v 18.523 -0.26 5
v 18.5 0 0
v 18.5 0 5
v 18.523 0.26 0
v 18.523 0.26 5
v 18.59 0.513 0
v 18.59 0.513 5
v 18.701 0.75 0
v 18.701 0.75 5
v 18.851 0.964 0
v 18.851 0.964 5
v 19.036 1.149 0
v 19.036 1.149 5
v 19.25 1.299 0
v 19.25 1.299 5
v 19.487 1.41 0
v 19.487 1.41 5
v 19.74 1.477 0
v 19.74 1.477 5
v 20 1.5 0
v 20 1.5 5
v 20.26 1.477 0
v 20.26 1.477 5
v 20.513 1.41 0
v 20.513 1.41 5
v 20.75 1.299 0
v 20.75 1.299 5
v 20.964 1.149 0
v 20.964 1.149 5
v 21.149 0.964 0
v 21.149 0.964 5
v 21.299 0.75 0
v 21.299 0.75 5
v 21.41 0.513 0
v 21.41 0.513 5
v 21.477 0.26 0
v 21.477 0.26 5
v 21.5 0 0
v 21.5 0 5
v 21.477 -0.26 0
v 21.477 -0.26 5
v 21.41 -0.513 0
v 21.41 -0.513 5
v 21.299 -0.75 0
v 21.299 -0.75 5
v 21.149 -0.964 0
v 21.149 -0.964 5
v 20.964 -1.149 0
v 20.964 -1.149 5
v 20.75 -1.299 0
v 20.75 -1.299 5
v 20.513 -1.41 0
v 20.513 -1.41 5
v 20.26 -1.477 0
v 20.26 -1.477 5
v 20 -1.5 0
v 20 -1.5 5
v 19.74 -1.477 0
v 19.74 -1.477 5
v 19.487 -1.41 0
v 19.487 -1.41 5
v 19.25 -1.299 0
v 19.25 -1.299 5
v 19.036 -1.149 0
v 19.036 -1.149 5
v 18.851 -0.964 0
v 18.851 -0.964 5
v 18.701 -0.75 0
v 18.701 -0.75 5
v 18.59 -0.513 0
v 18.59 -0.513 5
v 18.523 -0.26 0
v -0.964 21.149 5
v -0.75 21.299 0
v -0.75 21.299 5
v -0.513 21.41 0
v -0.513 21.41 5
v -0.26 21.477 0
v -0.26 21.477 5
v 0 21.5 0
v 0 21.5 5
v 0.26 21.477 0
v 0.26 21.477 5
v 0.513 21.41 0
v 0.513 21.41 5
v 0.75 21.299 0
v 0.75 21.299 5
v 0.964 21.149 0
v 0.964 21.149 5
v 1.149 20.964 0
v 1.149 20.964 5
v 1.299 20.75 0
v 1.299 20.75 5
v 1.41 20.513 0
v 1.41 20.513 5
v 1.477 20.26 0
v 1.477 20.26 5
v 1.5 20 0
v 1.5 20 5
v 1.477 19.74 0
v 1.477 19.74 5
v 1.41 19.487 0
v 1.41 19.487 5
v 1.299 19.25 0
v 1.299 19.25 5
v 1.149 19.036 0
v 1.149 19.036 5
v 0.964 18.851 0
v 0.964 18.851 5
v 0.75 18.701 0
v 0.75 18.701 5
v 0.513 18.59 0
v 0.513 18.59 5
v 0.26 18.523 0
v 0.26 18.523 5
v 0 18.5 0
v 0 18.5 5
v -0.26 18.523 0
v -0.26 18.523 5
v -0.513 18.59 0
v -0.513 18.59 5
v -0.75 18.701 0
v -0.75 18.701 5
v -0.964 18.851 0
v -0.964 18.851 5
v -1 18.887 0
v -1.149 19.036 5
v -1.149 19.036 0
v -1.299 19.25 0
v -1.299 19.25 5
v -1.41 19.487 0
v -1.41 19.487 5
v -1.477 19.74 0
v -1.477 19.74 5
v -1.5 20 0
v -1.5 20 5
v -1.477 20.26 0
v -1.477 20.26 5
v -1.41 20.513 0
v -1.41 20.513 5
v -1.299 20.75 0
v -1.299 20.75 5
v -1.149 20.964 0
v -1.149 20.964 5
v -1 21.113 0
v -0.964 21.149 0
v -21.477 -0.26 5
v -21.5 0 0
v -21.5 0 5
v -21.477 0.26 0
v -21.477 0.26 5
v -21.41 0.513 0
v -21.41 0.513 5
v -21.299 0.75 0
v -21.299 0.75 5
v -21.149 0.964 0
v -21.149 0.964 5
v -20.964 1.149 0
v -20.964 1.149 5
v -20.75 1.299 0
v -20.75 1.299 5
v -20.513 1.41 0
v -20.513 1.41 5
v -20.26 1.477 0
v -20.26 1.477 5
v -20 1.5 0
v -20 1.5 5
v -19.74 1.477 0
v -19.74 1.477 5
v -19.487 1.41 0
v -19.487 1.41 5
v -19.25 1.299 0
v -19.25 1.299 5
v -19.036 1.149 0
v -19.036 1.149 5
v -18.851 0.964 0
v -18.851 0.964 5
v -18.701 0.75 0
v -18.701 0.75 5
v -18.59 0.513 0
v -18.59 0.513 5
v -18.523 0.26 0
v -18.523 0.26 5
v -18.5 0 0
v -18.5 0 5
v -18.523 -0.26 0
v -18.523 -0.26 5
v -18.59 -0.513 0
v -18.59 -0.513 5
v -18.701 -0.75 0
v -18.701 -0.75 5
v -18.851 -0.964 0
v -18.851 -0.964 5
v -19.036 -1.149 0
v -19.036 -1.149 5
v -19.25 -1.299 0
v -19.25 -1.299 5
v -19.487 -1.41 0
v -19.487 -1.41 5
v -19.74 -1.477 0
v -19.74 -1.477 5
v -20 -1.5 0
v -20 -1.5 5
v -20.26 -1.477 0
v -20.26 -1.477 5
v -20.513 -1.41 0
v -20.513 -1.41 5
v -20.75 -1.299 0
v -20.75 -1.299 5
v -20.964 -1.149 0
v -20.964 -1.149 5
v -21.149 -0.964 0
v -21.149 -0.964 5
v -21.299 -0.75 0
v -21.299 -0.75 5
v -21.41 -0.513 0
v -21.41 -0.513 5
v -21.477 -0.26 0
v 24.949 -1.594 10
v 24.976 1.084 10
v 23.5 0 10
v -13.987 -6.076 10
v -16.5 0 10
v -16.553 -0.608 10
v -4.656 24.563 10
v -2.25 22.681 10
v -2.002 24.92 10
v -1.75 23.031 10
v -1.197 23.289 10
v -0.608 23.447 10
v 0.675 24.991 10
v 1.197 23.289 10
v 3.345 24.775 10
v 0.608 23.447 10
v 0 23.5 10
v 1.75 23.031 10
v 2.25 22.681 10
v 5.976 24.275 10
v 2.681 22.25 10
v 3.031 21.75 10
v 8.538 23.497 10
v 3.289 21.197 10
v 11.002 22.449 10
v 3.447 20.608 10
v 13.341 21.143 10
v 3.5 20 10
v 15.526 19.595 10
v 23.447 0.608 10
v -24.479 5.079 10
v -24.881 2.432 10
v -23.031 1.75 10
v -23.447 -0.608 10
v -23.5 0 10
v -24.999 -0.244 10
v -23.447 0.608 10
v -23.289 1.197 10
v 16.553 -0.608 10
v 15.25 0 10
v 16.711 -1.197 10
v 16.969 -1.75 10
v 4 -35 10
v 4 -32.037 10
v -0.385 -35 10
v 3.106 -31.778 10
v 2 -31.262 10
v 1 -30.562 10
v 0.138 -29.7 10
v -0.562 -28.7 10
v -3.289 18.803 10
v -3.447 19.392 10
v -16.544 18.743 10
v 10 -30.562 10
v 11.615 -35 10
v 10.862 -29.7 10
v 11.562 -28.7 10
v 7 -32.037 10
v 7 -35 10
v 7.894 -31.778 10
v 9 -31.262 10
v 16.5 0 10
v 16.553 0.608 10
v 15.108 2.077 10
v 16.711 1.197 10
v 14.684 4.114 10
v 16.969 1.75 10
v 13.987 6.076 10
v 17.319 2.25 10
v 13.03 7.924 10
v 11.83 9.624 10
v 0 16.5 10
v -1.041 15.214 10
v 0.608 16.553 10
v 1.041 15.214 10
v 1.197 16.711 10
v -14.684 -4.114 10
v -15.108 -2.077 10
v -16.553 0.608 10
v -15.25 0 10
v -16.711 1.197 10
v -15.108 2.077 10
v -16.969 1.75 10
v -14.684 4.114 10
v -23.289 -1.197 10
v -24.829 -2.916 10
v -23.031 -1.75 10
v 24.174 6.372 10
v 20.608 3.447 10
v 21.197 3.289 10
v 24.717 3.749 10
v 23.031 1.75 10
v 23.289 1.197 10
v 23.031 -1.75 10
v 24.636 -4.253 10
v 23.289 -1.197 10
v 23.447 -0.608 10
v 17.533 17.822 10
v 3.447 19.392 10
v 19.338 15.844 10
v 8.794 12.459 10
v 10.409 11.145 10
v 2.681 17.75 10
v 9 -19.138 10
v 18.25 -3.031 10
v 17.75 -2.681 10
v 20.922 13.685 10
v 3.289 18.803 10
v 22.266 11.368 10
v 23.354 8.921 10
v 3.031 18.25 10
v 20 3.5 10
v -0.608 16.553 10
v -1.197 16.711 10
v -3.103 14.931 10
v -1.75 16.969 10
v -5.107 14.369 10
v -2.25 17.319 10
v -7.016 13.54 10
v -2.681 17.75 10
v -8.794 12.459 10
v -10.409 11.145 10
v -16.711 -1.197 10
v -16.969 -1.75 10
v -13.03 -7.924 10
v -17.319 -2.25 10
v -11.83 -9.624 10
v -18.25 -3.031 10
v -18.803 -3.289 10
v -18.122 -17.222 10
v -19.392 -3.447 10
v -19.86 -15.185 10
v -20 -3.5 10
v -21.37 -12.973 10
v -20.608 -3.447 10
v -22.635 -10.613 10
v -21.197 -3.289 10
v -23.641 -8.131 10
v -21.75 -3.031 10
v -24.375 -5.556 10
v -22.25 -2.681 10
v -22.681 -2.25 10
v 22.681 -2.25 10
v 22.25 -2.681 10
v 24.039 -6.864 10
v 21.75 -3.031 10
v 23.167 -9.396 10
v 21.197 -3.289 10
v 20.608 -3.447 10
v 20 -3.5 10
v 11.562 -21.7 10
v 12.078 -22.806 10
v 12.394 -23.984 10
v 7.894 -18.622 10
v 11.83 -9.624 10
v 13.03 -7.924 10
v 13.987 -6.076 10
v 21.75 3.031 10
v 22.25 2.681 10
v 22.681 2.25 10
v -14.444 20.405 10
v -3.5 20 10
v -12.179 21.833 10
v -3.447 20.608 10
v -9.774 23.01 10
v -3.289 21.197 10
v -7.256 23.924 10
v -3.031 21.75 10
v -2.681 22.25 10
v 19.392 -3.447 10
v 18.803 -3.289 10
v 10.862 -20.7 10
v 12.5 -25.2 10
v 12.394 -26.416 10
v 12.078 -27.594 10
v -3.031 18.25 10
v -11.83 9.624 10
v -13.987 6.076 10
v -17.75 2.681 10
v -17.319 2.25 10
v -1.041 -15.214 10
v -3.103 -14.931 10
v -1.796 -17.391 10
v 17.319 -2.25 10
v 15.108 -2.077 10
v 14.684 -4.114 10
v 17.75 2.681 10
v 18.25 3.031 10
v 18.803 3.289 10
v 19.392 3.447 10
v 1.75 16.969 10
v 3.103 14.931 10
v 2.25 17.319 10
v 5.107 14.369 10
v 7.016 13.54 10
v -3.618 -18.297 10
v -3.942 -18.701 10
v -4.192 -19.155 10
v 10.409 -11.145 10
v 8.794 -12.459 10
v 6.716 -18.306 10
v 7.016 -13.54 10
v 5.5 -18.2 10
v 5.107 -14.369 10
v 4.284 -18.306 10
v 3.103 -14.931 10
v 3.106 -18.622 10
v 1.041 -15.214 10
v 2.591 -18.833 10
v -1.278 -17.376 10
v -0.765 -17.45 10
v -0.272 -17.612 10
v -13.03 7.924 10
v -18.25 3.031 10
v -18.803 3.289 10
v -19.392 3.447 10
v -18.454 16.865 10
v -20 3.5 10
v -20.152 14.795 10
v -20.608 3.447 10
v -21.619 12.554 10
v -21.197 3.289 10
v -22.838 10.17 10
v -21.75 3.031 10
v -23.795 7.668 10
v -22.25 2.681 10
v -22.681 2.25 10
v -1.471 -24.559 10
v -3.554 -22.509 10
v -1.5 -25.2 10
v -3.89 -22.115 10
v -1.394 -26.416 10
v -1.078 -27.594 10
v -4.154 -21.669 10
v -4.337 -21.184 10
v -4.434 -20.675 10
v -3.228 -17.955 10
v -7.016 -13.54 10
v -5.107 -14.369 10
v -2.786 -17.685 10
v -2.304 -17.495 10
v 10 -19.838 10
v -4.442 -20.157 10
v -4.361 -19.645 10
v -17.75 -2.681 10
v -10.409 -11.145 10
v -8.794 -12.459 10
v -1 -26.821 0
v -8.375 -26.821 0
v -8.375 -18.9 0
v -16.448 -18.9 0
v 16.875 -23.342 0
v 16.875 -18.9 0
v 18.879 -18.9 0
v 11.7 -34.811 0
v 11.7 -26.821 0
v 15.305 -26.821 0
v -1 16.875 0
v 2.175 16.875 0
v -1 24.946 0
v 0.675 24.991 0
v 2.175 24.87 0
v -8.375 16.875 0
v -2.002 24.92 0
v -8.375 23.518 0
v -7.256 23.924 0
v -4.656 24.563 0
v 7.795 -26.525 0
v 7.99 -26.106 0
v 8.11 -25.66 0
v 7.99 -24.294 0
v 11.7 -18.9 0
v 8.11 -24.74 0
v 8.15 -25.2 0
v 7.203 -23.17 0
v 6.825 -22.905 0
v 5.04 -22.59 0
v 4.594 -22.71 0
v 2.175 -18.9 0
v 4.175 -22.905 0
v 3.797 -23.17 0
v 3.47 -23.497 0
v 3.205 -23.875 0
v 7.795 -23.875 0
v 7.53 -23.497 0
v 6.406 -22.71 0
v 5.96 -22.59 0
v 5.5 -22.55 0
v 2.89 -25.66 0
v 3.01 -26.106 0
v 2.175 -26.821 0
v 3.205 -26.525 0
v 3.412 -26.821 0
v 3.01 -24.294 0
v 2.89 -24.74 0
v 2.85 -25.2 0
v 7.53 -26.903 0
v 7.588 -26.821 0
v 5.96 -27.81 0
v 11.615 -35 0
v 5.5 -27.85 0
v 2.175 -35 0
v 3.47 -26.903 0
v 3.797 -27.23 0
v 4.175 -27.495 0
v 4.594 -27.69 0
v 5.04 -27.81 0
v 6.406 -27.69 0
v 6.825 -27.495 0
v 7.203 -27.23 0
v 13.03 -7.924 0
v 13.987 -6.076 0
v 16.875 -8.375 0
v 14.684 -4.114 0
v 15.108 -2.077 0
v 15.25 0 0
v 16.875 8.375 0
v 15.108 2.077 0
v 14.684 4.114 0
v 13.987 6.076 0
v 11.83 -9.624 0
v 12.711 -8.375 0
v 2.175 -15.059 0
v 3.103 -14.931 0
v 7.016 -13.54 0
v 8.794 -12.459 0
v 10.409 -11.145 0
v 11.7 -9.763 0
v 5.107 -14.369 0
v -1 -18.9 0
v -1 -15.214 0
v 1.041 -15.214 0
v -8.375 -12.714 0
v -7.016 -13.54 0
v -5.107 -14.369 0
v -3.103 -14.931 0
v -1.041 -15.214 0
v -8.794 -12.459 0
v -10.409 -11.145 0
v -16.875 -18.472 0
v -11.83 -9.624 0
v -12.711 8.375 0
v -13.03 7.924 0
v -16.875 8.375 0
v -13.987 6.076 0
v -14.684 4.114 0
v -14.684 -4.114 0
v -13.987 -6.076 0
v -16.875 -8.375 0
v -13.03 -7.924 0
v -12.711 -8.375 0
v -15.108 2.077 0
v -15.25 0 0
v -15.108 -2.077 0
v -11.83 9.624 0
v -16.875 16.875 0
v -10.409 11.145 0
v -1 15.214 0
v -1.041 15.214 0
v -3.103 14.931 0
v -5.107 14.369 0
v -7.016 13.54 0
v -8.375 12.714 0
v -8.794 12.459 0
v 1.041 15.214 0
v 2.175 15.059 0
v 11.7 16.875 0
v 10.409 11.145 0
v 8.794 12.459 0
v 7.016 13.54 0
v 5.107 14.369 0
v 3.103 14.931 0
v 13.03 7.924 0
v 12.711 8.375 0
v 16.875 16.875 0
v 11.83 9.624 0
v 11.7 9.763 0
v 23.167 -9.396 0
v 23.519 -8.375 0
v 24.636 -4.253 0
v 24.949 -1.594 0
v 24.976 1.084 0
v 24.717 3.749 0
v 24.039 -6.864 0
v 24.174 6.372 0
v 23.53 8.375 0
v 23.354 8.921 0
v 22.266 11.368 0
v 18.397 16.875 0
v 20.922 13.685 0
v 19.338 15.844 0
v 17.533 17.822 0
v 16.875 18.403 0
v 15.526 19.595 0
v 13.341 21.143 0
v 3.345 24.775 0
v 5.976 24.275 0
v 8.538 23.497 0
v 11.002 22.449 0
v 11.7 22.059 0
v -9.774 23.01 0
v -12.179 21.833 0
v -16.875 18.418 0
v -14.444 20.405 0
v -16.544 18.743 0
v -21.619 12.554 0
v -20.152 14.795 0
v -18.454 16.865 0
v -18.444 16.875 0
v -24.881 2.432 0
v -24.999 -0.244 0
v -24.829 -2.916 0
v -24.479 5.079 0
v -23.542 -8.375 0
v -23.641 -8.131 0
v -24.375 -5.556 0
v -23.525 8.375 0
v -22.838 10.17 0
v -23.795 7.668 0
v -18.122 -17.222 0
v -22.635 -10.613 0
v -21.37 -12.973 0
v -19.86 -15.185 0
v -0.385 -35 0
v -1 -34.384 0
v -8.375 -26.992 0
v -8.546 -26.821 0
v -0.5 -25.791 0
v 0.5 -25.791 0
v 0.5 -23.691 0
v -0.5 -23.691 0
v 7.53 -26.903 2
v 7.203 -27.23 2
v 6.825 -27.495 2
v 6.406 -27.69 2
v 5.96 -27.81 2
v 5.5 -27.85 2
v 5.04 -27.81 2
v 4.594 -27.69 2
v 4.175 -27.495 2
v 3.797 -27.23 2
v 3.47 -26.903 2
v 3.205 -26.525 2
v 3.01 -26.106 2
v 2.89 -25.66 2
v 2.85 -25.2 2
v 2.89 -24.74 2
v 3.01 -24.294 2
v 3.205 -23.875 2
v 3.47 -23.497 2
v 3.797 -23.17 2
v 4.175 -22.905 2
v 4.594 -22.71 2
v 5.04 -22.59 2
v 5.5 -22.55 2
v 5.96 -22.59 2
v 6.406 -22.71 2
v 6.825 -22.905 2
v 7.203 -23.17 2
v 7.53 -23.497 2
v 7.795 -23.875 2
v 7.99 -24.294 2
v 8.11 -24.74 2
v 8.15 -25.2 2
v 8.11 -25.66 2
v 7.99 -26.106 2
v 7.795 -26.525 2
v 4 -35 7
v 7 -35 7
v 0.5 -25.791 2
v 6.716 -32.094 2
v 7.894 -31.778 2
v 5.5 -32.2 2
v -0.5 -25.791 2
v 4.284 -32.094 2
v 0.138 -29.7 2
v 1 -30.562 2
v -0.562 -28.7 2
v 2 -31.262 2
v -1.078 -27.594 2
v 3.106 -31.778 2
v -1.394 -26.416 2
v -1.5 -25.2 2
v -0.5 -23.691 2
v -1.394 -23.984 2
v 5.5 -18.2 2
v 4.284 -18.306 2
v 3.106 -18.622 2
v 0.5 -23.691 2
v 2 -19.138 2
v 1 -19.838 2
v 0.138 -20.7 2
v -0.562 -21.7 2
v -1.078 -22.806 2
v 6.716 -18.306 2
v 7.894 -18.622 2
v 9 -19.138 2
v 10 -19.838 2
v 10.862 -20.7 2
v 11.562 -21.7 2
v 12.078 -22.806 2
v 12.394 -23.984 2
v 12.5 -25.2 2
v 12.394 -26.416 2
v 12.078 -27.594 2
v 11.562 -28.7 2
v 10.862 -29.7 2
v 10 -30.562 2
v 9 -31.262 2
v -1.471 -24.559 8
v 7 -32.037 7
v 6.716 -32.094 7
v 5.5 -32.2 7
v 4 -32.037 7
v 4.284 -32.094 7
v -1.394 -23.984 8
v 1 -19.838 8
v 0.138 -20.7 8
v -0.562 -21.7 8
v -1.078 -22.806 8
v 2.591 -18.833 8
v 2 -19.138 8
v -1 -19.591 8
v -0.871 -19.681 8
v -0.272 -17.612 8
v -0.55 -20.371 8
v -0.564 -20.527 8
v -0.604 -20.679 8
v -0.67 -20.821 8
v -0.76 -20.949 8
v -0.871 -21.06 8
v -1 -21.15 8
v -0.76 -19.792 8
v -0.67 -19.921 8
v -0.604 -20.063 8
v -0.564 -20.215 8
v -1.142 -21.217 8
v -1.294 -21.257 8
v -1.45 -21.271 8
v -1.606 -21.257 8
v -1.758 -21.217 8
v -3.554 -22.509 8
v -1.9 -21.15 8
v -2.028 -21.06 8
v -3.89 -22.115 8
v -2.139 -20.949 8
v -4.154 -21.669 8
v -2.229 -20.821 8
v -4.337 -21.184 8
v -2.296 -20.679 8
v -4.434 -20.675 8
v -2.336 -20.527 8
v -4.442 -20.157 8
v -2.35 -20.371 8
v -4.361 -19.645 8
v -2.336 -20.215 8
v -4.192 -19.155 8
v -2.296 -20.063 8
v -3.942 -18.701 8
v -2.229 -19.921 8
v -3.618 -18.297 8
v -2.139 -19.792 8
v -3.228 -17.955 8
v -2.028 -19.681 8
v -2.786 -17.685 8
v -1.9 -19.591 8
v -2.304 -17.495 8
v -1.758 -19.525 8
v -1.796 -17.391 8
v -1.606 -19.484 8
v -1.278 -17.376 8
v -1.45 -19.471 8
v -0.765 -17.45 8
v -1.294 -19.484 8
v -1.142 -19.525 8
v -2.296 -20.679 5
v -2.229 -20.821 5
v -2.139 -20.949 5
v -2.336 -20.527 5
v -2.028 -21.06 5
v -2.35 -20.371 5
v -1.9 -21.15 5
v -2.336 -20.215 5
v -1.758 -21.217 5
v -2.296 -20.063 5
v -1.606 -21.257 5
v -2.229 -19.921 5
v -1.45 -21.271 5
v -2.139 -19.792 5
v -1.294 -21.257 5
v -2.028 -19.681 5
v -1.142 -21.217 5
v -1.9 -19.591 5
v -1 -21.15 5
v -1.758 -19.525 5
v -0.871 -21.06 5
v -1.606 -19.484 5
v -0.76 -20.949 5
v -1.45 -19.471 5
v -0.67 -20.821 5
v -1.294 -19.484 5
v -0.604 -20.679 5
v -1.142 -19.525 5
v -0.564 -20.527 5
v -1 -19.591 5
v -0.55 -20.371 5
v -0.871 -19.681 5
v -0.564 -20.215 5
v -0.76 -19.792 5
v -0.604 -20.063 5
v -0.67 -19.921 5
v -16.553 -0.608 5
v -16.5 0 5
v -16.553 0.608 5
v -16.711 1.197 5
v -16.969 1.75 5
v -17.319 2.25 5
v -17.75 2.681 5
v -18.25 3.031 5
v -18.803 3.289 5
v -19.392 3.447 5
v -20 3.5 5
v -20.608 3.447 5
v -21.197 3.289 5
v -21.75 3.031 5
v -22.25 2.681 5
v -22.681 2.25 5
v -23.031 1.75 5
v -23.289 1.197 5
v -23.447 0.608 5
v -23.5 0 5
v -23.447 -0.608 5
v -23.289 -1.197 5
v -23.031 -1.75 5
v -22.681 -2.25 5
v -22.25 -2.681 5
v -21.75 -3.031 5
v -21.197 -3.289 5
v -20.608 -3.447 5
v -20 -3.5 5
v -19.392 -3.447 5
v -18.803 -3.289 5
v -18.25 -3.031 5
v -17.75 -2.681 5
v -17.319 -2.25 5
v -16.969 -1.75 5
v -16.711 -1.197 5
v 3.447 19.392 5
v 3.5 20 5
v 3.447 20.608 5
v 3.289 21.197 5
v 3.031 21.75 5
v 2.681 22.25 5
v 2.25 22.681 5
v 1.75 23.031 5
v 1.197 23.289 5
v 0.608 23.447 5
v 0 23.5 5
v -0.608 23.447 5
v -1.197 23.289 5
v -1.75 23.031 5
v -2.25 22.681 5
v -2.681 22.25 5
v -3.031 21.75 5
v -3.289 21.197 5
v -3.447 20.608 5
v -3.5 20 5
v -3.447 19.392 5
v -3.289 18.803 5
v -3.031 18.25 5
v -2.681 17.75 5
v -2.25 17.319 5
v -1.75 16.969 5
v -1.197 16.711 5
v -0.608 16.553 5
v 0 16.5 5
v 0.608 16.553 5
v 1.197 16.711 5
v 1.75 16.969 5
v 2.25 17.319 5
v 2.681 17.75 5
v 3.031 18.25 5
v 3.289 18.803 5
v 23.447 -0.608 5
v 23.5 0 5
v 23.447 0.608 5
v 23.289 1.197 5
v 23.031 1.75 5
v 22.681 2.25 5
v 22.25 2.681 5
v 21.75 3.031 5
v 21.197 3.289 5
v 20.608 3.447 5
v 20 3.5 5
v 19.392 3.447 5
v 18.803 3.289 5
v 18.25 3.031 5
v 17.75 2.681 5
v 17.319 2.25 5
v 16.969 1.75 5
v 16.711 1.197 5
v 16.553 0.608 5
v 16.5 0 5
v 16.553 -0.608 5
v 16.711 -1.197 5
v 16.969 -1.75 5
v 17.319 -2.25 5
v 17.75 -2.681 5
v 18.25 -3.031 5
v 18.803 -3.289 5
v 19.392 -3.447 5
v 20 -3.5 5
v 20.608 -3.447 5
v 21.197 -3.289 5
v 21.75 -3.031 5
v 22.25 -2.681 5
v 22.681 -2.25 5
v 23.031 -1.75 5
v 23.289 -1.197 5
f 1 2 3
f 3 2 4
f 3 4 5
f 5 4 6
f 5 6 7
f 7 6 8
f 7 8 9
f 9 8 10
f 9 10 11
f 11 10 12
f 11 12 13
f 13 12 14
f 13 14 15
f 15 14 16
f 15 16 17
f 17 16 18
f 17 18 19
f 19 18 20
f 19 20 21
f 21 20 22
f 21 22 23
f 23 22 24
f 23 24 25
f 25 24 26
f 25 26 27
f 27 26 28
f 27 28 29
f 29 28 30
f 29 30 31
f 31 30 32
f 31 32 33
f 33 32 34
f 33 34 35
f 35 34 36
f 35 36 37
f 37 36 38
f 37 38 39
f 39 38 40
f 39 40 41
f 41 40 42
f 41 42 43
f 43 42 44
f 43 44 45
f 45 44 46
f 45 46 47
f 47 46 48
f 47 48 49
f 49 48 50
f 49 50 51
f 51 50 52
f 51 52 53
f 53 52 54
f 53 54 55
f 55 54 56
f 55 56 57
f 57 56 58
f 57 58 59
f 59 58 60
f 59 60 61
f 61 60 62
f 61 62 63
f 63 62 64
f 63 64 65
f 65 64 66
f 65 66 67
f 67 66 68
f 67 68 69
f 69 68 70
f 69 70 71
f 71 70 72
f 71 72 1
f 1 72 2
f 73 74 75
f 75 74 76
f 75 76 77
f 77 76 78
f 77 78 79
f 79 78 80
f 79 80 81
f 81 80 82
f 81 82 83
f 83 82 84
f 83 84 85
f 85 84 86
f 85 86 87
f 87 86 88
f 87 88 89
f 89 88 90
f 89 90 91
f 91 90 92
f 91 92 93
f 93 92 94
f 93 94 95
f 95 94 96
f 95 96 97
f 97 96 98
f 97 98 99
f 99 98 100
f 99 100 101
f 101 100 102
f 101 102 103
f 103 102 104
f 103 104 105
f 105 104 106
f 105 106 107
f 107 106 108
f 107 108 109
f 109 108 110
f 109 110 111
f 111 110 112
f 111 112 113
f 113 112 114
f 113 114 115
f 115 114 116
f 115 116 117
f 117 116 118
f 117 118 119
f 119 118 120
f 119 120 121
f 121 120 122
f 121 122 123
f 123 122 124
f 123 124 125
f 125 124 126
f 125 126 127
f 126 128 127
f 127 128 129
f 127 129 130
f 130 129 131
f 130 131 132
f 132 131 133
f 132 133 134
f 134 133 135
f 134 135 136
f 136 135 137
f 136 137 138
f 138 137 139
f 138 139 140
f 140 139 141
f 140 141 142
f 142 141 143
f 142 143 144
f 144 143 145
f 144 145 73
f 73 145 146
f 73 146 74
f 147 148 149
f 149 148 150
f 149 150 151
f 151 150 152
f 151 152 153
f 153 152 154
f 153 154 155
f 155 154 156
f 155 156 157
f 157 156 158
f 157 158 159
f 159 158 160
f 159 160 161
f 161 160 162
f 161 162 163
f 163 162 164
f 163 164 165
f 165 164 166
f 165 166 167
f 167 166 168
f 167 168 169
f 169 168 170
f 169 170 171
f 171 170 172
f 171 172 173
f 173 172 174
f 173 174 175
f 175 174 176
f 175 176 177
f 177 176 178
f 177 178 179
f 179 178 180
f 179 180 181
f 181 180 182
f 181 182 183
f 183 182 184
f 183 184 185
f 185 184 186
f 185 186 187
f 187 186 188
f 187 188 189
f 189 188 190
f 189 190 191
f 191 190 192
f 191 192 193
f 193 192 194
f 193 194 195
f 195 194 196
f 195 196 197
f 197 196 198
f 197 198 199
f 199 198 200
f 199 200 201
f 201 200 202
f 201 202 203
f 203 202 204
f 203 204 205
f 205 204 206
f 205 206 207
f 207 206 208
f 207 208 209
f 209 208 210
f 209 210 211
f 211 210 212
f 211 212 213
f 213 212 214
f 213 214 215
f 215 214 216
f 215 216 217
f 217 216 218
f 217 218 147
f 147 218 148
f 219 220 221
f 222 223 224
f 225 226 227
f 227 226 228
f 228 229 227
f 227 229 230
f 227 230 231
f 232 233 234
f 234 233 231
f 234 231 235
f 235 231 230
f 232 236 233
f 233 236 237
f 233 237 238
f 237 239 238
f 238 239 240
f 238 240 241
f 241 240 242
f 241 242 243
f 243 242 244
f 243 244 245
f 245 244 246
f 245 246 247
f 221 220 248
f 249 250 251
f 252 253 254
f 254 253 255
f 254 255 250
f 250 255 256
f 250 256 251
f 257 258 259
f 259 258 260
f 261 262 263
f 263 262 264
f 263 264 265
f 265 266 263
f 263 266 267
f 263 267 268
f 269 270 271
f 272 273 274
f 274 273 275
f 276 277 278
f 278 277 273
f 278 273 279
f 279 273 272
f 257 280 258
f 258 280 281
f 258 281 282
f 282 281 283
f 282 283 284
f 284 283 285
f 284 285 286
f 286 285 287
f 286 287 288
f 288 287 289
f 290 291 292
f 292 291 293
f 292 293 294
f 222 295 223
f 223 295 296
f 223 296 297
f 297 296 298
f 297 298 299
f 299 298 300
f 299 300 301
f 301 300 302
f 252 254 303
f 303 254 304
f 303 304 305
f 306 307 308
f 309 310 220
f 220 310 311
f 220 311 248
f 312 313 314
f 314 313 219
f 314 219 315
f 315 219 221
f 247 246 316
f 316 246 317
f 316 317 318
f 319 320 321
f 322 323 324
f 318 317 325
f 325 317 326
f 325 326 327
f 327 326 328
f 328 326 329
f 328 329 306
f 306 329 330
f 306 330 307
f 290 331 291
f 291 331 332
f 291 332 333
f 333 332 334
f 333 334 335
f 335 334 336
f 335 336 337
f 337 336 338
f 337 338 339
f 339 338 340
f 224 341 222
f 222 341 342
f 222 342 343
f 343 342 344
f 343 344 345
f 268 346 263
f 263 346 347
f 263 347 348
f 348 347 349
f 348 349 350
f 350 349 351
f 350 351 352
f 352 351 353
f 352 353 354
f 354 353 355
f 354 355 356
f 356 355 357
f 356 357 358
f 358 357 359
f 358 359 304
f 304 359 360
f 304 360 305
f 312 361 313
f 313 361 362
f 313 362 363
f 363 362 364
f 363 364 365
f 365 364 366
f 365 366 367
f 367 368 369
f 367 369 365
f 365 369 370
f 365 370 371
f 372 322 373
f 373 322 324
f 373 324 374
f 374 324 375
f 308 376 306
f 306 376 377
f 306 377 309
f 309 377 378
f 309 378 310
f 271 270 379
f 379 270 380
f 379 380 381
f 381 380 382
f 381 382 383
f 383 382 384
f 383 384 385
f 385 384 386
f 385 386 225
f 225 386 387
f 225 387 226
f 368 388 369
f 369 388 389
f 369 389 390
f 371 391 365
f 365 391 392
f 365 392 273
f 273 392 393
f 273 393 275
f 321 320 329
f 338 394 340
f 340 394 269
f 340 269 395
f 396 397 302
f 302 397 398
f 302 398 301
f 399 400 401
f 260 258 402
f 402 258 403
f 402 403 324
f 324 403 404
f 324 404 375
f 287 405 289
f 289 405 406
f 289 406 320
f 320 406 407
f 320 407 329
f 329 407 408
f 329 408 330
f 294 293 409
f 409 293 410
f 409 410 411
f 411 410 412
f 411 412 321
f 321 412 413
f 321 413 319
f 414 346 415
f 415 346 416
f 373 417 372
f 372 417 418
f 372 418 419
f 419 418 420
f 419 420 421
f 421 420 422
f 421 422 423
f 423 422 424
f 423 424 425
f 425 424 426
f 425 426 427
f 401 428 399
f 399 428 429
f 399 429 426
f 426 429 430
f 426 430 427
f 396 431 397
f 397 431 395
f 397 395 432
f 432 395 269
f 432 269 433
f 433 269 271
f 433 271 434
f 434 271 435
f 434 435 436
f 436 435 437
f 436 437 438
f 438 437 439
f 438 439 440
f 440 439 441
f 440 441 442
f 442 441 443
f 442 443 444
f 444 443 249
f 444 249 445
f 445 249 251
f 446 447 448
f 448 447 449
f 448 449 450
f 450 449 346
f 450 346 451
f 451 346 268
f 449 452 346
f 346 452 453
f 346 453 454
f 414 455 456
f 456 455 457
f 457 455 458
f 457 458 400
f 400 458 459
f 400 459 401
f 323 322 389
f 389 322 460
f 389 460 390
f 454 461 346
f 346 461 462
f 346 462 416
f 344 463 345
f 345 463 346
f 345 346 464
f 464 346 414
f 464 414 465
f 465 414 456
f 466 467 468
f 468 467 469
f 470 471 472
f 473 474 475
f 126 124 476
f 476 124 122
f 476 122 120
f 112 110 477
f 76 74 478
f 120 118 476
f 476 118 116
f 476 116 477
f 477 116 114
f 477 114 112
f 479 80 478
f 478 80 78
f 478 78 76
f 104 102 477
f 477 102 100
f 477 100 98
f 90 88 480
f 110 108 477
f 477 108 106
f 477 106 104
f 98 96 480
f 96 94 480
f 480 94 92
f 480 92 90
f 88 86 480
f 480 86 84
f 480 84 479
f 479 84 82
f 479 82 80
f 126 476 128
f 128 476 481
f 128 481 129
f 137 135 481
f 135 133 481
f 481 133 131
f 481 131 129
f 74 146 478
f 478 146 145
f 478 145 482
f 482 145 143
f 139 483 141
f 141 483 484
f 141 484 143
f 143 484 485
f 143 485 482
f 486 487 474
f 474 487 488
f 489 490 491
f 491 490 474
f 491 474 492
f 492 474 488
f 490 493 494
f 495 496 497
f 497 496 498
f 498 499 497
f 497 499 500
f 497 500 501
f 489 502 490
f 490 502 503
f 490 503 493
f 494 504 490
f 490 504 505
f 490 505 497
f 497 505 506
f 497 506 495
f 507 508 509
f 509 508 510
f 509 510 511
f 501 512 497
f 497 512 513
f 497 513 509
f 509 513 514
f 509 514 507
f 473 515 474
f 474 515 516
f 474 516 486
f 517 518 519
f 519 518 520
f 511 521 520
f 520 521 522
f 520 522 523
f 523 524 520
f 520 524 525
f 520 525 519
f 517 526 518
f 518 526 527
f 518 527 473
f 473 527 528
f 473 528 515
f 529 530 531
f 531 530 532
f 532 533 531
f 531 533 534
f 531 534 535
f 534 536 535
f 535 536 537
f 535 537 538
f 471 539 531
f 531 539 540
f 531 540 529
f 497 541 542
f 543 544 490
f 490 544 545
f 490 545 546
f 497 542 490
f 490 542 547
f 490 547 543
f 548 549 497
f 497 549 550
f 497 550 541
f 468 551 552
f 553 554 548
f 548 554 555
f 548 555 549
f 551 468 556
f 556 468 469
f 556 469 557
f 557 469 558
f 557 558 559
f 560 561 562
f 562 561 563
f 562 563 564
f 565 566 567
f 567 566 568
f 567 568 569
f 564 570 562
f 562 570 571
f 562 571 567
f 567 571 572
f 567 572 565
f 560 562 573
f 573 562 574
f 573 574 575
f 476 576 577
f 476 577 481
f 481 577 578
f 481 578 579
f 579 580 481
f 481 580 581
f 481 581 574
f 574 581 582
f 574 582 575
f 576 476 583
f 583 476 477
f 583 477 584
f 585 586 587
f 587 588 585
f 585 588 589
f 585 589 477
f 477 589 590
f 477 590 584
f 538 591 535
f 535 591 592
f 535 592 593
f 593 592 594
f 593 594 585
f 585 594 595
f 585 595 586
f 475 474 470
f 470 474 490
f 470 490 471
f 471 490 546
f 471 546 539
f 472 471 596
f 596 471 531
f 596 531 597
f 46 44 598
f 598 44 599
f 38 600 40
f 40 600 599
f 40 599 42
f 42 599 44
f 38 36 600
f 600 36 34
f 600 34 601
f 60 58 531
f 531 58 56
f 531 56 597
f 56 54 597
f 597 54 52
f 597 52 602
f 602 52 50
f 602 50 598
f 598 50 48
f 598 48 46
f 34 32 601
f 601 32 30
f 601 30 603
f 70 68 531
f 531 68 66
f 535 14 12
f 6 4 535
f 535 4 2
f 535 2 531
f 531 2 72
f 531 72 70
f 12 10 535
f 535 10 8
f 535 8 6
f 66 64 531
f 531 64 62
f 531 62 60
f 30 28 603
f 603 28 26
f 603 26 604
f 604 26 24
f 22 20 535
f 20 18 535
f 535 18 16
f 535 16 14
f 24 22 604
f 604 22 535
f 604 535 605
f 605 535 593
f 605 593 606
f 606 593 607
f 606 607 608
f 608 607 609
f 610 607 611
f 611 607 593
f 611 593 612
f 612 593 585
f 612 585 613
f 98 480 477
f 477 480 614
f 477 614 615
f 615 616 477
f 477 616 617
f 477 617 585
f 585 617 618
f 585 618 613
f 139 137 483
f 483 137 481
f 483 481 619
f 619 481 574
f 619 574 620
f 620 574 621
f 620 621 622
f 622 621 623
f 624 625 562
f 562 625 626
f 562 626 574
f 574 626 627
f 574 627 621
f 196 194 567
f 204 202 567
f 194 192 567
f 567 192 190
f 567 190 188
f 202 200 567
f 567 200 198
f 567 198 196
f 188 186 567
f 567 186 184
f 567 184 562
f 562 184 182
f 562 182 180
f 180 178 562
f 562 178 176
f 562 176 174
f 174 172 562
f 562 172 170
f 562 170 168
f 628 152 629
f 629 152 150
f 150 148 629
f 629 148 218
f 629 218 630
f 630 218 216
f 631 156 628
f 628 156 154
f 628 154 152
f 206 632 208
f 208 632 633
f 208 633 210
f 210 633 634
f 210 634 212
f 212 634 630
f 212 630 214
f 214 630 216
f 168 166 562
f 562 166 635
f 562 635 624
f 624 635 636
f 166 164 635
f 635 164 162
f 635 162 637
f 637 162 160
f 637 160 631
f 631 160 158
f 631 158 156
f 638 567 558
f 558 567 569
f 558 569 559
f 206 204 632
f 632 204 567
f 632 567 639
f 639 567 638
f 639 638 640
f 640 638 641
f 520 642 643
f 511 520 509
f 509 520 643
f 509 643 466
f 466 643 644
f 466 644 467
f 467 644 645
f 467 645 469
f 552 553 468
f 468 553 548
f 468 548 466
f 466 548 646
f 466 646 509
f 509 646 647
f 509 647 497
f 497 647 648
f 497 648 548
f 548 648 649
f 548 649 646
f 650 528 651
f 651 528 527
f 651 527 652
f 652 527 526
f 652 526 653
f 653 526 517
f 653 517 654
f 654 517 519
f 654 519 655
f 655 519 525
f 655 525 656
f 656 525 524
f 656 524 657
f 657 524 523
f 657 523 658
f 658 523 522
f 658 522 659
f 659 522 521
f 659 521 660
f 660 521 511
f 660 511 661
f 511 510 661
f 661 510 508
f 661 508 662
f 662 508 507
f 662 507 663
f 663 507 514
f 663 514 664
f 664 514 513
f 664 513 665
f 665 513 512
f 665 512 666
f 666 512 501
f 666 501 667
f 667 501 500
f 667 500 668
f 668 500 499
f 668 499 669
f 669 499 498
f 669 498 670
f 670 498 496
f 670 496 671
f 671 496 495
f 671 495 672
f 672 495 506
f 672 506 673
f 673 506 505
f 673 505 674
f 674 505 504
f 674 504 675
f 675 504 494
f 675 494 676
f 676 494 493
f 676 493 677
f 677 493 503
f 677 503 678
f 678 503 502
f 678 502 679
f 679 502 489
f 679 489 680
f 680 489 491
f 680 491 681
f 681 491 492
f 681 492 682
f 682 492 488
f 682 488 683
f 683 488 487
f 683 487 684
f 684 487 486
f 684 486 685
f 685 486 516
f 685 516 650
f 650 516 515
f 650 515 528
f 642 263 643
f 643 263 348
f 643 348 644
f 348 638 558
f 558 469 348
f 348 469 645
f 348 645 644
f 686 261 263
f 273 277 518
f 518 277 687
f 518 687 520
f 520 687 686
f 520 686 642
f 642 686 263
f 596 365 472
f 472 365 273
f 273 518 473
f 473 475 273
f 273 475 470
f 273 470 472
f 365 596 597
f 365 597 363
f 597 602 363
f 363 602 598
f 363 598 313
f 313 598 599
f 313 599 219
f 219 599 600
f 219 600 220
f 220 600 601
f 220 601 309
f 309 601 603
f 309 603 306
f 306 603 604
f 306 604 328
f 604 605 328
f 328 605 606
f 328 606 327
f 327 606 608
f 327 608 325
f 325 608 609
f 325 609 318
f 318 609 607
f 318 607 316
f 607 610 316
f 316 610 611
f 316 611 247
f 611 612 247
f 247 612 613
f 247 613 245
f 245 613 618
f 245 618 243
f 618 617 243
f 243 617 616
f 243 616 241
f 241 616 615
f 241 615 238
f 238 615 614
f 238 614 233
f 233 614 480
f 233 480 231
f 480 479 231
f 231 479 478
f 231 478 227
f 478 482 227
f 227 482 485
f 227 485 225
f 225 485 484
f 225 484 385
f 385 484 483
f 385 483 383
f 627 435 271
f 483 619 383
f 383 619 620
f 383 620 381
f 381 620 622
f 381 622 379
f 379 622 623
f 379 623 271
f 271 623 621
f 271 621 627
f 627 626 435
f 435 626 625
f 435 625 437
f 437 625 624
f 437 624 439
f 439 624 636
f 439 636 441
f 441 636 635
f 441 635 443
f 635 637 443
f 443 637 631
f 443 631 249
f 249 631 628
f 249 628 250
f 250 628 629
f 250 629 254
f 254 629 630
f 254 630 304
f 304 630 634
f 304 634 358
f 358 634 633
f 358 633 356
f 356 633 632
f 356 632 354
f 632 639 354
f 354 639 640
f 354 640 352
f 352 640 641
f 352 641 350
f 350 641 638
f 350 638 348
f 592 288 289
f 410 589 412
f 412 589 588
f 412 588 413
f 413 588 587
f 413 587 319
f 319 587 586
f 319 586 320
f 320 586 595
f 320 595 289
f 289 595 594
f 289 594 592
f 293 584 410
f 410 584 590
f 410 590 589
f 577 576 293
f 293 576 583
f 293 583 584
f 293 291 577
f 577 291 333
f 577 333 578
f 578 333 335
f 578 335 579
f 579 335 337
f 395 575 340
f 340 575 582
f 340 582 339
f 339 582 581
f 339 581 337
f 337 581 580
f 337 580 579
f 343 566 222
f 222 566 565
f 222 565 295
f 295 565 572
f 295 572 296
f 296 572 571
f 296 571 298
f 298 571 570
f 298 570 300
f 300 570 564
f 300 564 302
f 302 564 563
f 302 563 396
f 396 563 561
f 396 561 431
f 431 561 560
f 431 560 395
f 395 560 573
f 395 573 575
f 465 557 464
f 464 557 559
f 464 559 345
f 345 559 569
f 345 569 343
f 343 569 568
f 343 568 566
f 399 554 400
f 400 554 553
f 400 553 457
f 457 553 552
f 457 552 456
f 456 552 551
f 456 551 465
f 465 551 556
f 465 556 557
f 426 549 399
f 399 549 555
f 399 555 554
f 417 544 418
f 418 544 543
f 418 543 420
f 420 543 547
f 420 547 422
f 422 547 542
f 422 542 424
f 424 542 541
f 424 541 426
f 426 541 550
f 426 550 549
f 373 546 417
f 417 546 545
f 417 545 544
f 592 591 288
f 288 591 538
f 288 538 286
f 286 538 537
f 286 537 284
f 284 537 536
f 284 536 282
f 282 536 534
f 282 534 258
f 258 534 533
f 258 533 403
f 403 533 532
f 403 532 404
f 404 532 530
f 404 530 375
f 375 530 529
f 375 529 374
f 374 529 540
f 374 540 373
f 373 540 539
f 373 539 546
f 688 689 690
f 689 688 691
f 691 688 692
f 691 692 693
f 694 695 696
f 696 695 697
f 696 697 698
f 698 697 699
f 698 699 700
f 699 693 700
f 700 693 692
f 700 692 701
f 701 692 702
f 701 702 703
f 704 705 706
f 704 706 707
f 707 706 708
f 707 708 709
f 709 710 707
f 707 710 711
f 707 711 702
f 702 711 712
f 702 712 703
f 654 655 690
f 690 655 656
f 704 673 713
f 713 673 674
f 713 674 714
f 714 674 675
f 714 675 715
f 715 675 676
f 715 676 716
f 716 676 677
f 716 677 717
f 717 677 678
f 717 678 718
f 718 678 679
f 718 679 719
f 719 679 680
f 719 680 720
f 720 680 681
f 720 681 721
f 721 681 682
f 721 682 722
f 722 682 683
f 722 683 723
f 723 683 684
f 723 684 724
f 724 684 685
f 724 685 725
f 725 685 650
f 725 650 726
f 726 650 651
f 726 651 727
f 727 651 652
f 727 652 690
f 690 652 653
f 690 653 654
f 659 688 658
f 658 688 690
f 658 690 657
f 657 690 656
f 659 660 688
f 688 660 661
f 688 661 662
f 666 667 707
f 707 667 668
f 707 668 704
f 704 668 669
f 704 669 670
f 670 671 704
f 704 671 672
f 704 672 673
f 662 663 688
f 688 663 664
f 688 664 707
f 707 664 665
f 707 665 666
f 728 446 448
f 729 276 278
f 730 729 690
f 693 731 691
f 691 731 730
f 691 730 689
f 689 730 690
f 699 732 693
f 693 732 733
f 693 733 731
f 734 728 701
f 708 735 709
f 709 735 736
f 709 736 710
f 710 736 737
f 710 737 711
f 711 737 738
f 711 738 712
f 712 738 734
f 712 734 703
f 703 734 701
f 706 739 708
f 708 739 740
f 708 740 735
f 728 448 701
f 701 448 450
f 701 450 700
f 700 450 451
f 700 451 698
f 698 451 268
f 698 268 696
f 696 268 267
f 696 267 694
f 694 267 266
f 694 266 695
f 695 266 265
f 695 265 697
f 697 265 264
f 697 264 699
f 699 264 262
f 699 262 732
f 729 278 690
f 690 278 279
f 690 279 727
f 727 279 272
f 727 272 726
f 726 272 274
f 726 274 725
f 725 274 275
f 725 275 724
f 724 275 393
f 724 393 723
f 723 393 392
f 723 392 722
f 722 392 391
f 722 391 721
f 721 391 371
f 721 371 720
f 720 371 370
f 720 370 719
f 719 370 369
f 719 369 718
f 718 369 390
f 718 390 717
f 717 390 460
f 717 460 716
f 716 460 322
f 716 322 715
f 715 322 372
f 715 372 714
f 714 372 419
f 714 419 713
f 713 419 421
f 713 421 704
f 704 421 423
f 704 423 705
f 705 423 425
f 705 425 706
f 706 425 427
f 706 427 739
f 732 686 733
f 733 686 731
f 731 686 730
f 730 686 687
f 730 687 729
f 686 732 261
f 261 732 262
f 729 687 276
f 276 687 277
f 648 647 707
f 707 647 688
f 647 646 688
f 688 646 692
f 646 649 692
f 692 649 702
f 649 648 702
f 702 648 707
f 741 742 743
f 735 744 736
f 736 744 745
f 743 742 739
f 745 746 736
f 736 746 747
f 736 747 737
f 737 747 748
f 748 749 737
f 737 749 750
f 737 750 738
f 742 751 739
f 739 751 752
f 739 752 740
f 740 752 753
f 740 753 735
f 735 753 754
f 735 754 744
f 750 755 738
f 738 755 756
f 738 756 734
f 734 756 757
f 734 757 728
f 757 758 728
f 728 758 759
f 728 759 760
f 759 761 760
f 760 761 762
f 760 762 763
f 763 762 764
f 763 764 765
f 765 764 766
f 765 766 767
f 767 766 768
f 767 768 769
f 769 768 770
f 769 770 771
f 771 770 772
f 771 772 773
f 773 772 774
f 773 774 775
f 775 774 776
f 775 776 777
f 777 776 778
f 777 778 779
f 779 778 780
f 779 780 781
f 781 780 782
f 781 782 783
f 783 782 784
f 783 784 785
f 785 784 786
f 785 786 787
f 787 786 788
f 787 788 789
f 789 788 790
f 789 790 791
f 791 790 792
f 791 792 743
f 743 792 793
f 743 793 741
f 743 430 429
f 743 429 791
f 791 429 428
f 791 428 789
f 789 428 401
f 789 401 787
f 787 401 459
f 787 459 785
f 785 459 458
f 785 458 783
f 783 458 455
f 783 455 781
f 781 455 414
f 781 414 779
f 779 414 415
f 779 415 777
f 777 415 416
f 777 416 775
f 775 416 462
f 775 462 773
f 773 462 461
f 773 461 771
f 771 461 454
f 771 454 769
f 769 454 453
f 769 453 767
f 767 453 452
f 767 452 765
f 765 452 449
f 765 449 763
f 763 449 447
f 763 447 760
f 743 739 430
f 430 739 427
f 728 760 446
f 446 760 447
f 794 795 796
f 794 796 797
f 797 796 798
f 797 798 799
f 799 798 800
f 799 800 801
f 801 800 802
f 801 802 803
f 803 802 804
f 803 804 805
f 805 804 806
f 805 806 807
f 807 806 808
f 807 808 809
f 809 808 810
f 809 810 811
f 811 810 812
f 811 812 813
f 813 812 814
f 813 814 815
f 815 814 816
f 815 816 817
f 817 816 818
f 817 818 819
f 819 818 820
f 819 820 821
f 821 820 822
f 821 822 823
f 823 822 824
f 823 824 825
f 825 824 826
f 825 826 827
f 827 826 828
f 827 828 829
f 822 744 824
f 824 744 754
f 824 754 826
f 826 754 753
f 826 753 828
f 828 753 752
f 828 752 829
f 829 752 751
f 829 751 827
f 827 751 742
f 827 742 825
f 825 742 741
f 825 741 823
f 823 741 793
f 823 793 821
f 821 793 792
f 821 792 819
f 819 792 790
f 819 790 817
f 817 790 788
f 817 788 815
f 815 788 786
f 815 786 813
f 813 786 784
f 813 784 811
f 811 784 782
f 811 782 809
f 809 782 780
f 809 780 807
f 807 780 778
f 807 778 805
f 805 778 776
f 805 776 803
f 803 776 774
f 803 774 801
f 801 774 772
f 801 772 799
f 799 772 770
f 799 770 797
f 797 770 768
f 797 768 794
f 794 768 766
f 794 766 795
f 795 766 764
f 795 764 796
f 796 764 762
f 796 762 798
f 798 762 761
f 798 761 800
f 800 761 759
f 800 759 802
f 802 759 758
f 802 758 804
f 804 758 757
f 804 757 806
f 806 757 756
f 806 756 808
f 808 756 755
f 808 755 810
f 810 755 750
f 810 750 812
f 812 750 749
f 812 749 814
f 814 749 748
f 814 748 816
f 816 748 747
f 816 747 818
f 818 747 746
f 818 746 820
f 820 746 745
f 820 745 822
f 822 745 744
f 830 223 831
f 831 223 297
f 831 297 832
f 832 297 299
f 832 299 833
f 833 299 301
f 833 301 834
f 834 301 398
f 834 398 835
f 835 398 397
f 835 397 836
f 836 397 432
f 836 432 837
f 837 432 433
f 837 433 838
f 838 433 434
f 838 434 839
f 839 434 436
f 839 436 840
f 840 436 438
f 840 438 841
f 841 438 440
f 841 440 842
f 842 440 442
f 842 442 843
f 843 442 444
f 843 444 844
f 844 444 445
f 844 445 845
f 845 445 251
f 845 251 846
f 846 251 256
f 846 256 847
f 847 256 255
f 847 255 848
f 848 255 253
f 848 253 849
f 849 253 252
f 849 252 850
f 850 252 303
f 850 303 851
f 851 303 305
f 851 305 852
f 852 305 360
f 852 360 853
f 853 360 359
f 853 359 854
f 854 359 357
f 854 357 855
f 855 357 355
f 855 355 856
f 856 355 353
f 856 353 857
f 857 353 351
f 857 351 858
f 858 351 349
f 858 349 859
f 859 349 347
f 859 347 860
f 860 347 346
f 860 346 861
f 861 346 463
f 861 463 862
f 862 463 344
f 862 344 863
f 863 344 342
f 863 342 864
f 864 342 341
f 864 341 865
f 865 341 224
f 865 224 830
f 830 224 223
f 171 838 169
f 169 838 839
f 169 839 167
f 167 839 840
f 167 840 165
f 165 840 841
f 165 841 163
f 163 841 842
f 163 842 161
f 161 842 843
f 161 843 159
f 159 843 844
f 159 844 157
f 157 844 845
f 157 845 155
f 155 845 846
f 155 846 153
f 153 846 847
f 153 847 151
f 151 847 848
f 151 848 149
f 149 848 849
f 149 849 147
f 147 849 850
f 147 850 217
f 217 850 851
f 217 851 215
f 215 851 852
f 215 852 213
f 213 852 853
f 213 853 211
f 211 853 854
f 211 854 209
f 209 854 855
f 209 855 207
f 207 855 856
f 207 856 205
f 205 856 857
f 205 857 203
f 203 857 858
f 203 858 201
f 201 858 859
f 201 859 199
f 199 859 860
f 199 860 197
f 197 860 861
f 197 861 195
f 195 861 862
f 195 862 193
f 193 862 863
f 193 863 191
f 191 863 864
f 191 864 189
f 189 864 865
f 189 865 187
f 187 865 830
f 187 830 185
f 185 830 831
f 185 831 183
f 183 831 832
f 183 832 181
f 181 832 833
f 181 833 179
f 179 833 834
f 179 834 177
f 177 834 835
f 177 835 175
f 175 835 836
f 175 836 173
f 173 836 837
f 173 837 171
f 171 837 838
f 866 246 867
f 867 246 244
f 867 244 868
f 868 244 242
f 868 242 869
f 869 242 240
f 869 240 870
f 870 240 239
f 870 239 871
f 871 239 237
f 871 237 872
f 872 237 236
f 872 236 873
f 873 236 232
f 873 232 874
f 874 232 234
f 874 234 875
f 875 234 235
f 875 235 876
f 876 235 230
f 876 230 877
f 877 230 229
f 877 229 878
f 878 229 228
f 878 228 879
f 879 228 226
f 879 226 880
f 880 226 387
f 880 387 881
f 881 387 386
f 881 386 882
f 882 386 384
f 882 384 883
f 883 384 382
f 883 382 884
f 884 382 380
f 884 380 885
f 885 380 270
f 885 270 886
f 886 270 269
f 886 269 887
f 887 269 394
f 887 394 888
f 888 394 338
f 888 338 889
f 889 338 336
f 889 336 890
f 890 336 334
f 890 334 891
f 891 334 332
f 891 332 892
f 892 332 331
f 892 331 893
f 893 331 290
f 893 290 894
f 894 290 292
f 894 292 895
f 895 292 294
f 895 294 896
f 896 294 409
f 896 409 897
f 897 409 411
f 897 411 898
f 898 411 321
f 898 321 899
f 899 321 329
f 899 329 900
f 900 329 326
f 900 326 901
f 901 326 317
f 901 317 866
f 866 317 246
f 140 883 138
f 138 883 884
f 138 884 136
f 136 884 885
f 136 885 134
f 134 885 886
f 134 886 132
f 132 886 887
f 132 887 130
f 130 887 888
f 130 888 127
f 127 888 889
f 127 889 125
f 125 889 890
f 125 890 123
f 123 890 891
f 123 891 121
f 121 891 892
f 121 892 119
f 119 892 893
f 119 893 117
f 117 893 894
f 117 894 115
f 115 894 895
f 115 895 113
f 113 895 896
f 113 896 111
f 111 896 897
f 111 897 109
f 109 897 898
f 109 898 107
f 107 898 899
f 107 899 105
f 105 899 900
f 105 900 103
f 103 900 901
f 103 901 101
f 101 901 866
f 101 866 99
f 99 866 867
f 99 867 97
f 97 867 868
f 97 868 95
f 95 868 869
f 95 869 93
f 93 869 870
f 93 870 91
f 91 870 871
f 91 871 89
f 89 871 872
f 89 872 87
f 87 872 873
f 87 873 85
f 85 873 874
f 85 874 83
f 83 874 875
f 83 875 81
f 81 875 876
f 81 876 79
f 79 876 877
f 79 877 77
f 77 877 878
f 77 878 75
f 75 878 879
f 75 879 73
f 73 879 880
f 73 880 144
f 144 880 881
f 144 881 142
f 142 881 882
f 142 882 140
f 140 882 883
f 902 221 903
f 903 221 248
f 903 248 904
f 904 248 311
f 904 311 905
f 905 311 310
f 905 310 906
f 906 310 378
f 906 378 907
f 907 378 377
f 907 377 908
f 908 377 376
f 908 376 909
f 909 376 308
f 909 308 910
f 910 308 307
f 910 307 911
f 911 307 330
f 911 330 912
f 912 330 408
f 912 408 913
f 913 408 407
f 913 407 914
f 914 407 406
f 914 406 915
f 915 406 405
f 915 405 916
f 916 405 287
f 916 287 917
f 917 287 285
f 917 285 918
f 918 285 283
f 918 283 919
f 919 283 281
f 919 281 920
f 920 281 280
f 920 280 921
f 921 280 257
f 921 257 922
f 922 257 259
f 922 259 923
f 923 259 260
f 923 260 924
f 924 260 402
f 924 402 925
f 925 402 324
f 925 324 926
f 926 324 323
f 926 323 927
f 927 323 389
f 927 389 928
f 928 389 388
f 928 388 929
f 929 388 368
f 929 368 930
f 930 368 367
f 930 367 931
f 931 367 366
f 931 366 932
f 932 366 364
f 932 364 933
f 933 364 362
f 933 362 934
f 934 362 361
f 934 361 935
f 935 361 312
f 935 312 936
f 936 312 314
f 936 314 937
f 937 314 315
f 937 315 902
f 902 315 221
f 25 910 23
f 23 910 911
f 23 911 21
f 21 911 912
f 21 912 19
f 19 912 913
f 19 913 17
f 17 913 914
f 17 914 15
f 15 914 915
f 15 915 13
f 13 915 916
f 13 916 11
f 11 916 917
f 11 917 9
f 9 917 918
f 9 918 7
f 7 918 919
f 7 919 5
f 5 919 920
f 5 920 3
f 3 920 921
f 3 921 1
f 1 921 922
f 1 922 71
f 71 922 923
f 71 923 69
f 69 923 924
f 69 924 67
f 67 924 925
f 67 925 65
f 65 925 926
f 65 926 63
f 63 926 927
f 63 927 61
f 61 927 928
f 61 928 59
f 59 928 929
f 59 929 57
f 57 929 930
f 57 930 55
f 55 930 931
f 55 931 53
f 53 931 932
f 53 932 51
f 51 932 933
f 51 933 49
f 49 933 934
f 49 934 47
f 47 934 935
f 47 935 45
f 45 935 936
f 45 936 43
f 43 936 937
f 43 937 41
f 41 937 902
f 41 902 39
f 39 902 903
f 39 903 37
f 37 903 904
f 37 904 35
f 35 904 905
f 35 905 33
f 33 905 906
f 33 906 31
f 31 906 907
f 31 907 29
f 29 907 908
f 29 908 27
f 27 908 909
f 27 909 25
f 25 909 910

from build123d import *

# Parameters (mm, degrees)
EXTRUDE1_DEPTH                 = 10
SKETCH2_R                      = 15.25
EXTRUDE2_DEPTH                 = 11
F_5_3_5_3_DIAMETER_HOLE1_D     = 5.3
F_5_3_5_3_DIAMETER_HOLE1_DEPTH = 15
SKETCH4_R                      = 7
EXTRUDE3_DEPTH                 = 8
SKETCH5_W                      = 3
SKETCH5_H                      = 2.962602834
EXTRUDE4_DEPTH                 = 3
SKETCH6_W                      = 1
SKETCH6_H                      = 2.1
EXTRUDE5_DEPTH                 = 3
SKETCH7_R                      = 0.9
EXTRUDE6_DEPTH                 = 5
EXTRUDE7_DEPTH                 = 2
SKETCH9_R                      = 1.5
EXTRUDE9_DEPTH                 = 11
SKETCH10_R                     = 3.5
EXTRUDE10_DEPTH                = 5


with BuildPart() as part:
    # Sketch1 → Extrude1 (new body)
    with BuildSketch(Plane.XY):
        with BuildLine():
            Line((-0.385076955, -35), (11.614923045, -35))
            Line((11.614923045, -35), (23.167030313, -9.396207025))
            ThreePointArc((23.167030313, -9.396207025), (-4.655667218, 24.562670106), (-18.121718507, -17.222175192))
            Line((-18.121718507, -17.222175192), (-0.385076955, -35))
        make_face()
    extrude(amount=EXTRUDE1_DEPTH)

    # Sketch2 → Extrude2 (cut, through all)
    with BuildSketch(Plane.XY.offset(10)):
        Circle(SKETCH2_R)
    extrude(amount=-EXTRUDE2_DEPTH, mode=Mode.SUBTRACT)

    # Ø5.3 (5.3) Diameter Hole1
    with Locations(Plane(origin=(5.5, -25.2, 10), x_dir=(1, 0, 0), z_dir=(0, 0, 1))):
        with Locations((0, 0)):
            Hole(F_5_3_5_3_DIAMETER_HOLE1_D / 2, depth=F_5_3_5_3_DIAMETER_HOLE1_DEPTH)

    # Sketch4 → Extrude3 (cut)
    with BuildSketch(Plane.XY.offset(10)):
        with Locations((5.5, -25.2)):
            Circle(SKETCH4_R)
    extrude(amount=-EXTRUDE3_DEPTH, mode=Mode.SUBTRACT)

    # Sketch5 → Extrude4 (cut)
    with BuildSketch(Plane.XY.offset(10)):
        with Locations((5.5, -33.518698583)):
            Rectangle(SKETCH5_W, SKETCH5_H)
    extrude(amount=-EXTRUDE4_DEPTH, mode=Mode.SUBTRACT)

    # Sketch6 → Extrude5 (cut, through all)
    with BuildSketch(Plane.XY.offset(2)):
        with Locations((0, -24.741008814)):
            Rectangle(SKETCH6_W, SKETCH6_H)
    extrude(amount=-EXTRUDE5_DEPTH, mode=Mode.SUBTRACT)

    # Sketch7 → Extrude6 (cut)
    with BuildSketch(Plane.XY.offset(10)):
        with Locations((-1.44988107, -20.370788479)):
            Circle(SKETCH7_R)
    extrude(amount=-EXTRUDE6_DEPTH, mode=Mode.SUBTRACT)

    # Sketch8 → Extrude7 (cut)
    with BuildSketch(Plane.XY.offset(10)):
        with BuildLine():
            Line((-3.55371741, -22.509449896), (-1.470560637, -24.558685407))
            Line((-1.470560637, -24.558685407), (2.590549038, -18.833282235))
            Line((2.590549038, -18.833282235), (-0.272375103, -17.611535012))
            ThreePointArc((-0.272375103, -17.611535012), (-3.942252339, -18.701032372), (-3.55371741, -22.509449896))
        make_face()
    extrude(amount=-EXTRUDE7_DEPTH, mode=Mode.SUBTRACT)

    # Sketch9 → Extrude9 (cut, through all)
    with BuildSketch(Plane.XY):
        with Locations((0, 20)):
            Circle(SKETCH9_R)
        with Locations((-20, 0)):
            Circle(SKETCH9_R)
        with Locations((20, 0)):
            Circle(SKETCH9_R)
    extrude(amount=EXTRUDE9_DEPTH, mode=Mode.SUBTRACT)

    # Sketch10 → Extrude10 (cut)
    with BuildSketch(Plane.XY.offset(10)):
        with Locations((-20, 0)):
            Circle(SKETCH10_R)
        with Locations((0, 20)):
            Circle(SKETCH10_R)
        with Locations((20, 0)):
            Circle(SKETCH10_R)
    extrude(amount=-EXTRUDE10_DEPTH, mode=Mode.SUBTRACT)


solid = part.part
